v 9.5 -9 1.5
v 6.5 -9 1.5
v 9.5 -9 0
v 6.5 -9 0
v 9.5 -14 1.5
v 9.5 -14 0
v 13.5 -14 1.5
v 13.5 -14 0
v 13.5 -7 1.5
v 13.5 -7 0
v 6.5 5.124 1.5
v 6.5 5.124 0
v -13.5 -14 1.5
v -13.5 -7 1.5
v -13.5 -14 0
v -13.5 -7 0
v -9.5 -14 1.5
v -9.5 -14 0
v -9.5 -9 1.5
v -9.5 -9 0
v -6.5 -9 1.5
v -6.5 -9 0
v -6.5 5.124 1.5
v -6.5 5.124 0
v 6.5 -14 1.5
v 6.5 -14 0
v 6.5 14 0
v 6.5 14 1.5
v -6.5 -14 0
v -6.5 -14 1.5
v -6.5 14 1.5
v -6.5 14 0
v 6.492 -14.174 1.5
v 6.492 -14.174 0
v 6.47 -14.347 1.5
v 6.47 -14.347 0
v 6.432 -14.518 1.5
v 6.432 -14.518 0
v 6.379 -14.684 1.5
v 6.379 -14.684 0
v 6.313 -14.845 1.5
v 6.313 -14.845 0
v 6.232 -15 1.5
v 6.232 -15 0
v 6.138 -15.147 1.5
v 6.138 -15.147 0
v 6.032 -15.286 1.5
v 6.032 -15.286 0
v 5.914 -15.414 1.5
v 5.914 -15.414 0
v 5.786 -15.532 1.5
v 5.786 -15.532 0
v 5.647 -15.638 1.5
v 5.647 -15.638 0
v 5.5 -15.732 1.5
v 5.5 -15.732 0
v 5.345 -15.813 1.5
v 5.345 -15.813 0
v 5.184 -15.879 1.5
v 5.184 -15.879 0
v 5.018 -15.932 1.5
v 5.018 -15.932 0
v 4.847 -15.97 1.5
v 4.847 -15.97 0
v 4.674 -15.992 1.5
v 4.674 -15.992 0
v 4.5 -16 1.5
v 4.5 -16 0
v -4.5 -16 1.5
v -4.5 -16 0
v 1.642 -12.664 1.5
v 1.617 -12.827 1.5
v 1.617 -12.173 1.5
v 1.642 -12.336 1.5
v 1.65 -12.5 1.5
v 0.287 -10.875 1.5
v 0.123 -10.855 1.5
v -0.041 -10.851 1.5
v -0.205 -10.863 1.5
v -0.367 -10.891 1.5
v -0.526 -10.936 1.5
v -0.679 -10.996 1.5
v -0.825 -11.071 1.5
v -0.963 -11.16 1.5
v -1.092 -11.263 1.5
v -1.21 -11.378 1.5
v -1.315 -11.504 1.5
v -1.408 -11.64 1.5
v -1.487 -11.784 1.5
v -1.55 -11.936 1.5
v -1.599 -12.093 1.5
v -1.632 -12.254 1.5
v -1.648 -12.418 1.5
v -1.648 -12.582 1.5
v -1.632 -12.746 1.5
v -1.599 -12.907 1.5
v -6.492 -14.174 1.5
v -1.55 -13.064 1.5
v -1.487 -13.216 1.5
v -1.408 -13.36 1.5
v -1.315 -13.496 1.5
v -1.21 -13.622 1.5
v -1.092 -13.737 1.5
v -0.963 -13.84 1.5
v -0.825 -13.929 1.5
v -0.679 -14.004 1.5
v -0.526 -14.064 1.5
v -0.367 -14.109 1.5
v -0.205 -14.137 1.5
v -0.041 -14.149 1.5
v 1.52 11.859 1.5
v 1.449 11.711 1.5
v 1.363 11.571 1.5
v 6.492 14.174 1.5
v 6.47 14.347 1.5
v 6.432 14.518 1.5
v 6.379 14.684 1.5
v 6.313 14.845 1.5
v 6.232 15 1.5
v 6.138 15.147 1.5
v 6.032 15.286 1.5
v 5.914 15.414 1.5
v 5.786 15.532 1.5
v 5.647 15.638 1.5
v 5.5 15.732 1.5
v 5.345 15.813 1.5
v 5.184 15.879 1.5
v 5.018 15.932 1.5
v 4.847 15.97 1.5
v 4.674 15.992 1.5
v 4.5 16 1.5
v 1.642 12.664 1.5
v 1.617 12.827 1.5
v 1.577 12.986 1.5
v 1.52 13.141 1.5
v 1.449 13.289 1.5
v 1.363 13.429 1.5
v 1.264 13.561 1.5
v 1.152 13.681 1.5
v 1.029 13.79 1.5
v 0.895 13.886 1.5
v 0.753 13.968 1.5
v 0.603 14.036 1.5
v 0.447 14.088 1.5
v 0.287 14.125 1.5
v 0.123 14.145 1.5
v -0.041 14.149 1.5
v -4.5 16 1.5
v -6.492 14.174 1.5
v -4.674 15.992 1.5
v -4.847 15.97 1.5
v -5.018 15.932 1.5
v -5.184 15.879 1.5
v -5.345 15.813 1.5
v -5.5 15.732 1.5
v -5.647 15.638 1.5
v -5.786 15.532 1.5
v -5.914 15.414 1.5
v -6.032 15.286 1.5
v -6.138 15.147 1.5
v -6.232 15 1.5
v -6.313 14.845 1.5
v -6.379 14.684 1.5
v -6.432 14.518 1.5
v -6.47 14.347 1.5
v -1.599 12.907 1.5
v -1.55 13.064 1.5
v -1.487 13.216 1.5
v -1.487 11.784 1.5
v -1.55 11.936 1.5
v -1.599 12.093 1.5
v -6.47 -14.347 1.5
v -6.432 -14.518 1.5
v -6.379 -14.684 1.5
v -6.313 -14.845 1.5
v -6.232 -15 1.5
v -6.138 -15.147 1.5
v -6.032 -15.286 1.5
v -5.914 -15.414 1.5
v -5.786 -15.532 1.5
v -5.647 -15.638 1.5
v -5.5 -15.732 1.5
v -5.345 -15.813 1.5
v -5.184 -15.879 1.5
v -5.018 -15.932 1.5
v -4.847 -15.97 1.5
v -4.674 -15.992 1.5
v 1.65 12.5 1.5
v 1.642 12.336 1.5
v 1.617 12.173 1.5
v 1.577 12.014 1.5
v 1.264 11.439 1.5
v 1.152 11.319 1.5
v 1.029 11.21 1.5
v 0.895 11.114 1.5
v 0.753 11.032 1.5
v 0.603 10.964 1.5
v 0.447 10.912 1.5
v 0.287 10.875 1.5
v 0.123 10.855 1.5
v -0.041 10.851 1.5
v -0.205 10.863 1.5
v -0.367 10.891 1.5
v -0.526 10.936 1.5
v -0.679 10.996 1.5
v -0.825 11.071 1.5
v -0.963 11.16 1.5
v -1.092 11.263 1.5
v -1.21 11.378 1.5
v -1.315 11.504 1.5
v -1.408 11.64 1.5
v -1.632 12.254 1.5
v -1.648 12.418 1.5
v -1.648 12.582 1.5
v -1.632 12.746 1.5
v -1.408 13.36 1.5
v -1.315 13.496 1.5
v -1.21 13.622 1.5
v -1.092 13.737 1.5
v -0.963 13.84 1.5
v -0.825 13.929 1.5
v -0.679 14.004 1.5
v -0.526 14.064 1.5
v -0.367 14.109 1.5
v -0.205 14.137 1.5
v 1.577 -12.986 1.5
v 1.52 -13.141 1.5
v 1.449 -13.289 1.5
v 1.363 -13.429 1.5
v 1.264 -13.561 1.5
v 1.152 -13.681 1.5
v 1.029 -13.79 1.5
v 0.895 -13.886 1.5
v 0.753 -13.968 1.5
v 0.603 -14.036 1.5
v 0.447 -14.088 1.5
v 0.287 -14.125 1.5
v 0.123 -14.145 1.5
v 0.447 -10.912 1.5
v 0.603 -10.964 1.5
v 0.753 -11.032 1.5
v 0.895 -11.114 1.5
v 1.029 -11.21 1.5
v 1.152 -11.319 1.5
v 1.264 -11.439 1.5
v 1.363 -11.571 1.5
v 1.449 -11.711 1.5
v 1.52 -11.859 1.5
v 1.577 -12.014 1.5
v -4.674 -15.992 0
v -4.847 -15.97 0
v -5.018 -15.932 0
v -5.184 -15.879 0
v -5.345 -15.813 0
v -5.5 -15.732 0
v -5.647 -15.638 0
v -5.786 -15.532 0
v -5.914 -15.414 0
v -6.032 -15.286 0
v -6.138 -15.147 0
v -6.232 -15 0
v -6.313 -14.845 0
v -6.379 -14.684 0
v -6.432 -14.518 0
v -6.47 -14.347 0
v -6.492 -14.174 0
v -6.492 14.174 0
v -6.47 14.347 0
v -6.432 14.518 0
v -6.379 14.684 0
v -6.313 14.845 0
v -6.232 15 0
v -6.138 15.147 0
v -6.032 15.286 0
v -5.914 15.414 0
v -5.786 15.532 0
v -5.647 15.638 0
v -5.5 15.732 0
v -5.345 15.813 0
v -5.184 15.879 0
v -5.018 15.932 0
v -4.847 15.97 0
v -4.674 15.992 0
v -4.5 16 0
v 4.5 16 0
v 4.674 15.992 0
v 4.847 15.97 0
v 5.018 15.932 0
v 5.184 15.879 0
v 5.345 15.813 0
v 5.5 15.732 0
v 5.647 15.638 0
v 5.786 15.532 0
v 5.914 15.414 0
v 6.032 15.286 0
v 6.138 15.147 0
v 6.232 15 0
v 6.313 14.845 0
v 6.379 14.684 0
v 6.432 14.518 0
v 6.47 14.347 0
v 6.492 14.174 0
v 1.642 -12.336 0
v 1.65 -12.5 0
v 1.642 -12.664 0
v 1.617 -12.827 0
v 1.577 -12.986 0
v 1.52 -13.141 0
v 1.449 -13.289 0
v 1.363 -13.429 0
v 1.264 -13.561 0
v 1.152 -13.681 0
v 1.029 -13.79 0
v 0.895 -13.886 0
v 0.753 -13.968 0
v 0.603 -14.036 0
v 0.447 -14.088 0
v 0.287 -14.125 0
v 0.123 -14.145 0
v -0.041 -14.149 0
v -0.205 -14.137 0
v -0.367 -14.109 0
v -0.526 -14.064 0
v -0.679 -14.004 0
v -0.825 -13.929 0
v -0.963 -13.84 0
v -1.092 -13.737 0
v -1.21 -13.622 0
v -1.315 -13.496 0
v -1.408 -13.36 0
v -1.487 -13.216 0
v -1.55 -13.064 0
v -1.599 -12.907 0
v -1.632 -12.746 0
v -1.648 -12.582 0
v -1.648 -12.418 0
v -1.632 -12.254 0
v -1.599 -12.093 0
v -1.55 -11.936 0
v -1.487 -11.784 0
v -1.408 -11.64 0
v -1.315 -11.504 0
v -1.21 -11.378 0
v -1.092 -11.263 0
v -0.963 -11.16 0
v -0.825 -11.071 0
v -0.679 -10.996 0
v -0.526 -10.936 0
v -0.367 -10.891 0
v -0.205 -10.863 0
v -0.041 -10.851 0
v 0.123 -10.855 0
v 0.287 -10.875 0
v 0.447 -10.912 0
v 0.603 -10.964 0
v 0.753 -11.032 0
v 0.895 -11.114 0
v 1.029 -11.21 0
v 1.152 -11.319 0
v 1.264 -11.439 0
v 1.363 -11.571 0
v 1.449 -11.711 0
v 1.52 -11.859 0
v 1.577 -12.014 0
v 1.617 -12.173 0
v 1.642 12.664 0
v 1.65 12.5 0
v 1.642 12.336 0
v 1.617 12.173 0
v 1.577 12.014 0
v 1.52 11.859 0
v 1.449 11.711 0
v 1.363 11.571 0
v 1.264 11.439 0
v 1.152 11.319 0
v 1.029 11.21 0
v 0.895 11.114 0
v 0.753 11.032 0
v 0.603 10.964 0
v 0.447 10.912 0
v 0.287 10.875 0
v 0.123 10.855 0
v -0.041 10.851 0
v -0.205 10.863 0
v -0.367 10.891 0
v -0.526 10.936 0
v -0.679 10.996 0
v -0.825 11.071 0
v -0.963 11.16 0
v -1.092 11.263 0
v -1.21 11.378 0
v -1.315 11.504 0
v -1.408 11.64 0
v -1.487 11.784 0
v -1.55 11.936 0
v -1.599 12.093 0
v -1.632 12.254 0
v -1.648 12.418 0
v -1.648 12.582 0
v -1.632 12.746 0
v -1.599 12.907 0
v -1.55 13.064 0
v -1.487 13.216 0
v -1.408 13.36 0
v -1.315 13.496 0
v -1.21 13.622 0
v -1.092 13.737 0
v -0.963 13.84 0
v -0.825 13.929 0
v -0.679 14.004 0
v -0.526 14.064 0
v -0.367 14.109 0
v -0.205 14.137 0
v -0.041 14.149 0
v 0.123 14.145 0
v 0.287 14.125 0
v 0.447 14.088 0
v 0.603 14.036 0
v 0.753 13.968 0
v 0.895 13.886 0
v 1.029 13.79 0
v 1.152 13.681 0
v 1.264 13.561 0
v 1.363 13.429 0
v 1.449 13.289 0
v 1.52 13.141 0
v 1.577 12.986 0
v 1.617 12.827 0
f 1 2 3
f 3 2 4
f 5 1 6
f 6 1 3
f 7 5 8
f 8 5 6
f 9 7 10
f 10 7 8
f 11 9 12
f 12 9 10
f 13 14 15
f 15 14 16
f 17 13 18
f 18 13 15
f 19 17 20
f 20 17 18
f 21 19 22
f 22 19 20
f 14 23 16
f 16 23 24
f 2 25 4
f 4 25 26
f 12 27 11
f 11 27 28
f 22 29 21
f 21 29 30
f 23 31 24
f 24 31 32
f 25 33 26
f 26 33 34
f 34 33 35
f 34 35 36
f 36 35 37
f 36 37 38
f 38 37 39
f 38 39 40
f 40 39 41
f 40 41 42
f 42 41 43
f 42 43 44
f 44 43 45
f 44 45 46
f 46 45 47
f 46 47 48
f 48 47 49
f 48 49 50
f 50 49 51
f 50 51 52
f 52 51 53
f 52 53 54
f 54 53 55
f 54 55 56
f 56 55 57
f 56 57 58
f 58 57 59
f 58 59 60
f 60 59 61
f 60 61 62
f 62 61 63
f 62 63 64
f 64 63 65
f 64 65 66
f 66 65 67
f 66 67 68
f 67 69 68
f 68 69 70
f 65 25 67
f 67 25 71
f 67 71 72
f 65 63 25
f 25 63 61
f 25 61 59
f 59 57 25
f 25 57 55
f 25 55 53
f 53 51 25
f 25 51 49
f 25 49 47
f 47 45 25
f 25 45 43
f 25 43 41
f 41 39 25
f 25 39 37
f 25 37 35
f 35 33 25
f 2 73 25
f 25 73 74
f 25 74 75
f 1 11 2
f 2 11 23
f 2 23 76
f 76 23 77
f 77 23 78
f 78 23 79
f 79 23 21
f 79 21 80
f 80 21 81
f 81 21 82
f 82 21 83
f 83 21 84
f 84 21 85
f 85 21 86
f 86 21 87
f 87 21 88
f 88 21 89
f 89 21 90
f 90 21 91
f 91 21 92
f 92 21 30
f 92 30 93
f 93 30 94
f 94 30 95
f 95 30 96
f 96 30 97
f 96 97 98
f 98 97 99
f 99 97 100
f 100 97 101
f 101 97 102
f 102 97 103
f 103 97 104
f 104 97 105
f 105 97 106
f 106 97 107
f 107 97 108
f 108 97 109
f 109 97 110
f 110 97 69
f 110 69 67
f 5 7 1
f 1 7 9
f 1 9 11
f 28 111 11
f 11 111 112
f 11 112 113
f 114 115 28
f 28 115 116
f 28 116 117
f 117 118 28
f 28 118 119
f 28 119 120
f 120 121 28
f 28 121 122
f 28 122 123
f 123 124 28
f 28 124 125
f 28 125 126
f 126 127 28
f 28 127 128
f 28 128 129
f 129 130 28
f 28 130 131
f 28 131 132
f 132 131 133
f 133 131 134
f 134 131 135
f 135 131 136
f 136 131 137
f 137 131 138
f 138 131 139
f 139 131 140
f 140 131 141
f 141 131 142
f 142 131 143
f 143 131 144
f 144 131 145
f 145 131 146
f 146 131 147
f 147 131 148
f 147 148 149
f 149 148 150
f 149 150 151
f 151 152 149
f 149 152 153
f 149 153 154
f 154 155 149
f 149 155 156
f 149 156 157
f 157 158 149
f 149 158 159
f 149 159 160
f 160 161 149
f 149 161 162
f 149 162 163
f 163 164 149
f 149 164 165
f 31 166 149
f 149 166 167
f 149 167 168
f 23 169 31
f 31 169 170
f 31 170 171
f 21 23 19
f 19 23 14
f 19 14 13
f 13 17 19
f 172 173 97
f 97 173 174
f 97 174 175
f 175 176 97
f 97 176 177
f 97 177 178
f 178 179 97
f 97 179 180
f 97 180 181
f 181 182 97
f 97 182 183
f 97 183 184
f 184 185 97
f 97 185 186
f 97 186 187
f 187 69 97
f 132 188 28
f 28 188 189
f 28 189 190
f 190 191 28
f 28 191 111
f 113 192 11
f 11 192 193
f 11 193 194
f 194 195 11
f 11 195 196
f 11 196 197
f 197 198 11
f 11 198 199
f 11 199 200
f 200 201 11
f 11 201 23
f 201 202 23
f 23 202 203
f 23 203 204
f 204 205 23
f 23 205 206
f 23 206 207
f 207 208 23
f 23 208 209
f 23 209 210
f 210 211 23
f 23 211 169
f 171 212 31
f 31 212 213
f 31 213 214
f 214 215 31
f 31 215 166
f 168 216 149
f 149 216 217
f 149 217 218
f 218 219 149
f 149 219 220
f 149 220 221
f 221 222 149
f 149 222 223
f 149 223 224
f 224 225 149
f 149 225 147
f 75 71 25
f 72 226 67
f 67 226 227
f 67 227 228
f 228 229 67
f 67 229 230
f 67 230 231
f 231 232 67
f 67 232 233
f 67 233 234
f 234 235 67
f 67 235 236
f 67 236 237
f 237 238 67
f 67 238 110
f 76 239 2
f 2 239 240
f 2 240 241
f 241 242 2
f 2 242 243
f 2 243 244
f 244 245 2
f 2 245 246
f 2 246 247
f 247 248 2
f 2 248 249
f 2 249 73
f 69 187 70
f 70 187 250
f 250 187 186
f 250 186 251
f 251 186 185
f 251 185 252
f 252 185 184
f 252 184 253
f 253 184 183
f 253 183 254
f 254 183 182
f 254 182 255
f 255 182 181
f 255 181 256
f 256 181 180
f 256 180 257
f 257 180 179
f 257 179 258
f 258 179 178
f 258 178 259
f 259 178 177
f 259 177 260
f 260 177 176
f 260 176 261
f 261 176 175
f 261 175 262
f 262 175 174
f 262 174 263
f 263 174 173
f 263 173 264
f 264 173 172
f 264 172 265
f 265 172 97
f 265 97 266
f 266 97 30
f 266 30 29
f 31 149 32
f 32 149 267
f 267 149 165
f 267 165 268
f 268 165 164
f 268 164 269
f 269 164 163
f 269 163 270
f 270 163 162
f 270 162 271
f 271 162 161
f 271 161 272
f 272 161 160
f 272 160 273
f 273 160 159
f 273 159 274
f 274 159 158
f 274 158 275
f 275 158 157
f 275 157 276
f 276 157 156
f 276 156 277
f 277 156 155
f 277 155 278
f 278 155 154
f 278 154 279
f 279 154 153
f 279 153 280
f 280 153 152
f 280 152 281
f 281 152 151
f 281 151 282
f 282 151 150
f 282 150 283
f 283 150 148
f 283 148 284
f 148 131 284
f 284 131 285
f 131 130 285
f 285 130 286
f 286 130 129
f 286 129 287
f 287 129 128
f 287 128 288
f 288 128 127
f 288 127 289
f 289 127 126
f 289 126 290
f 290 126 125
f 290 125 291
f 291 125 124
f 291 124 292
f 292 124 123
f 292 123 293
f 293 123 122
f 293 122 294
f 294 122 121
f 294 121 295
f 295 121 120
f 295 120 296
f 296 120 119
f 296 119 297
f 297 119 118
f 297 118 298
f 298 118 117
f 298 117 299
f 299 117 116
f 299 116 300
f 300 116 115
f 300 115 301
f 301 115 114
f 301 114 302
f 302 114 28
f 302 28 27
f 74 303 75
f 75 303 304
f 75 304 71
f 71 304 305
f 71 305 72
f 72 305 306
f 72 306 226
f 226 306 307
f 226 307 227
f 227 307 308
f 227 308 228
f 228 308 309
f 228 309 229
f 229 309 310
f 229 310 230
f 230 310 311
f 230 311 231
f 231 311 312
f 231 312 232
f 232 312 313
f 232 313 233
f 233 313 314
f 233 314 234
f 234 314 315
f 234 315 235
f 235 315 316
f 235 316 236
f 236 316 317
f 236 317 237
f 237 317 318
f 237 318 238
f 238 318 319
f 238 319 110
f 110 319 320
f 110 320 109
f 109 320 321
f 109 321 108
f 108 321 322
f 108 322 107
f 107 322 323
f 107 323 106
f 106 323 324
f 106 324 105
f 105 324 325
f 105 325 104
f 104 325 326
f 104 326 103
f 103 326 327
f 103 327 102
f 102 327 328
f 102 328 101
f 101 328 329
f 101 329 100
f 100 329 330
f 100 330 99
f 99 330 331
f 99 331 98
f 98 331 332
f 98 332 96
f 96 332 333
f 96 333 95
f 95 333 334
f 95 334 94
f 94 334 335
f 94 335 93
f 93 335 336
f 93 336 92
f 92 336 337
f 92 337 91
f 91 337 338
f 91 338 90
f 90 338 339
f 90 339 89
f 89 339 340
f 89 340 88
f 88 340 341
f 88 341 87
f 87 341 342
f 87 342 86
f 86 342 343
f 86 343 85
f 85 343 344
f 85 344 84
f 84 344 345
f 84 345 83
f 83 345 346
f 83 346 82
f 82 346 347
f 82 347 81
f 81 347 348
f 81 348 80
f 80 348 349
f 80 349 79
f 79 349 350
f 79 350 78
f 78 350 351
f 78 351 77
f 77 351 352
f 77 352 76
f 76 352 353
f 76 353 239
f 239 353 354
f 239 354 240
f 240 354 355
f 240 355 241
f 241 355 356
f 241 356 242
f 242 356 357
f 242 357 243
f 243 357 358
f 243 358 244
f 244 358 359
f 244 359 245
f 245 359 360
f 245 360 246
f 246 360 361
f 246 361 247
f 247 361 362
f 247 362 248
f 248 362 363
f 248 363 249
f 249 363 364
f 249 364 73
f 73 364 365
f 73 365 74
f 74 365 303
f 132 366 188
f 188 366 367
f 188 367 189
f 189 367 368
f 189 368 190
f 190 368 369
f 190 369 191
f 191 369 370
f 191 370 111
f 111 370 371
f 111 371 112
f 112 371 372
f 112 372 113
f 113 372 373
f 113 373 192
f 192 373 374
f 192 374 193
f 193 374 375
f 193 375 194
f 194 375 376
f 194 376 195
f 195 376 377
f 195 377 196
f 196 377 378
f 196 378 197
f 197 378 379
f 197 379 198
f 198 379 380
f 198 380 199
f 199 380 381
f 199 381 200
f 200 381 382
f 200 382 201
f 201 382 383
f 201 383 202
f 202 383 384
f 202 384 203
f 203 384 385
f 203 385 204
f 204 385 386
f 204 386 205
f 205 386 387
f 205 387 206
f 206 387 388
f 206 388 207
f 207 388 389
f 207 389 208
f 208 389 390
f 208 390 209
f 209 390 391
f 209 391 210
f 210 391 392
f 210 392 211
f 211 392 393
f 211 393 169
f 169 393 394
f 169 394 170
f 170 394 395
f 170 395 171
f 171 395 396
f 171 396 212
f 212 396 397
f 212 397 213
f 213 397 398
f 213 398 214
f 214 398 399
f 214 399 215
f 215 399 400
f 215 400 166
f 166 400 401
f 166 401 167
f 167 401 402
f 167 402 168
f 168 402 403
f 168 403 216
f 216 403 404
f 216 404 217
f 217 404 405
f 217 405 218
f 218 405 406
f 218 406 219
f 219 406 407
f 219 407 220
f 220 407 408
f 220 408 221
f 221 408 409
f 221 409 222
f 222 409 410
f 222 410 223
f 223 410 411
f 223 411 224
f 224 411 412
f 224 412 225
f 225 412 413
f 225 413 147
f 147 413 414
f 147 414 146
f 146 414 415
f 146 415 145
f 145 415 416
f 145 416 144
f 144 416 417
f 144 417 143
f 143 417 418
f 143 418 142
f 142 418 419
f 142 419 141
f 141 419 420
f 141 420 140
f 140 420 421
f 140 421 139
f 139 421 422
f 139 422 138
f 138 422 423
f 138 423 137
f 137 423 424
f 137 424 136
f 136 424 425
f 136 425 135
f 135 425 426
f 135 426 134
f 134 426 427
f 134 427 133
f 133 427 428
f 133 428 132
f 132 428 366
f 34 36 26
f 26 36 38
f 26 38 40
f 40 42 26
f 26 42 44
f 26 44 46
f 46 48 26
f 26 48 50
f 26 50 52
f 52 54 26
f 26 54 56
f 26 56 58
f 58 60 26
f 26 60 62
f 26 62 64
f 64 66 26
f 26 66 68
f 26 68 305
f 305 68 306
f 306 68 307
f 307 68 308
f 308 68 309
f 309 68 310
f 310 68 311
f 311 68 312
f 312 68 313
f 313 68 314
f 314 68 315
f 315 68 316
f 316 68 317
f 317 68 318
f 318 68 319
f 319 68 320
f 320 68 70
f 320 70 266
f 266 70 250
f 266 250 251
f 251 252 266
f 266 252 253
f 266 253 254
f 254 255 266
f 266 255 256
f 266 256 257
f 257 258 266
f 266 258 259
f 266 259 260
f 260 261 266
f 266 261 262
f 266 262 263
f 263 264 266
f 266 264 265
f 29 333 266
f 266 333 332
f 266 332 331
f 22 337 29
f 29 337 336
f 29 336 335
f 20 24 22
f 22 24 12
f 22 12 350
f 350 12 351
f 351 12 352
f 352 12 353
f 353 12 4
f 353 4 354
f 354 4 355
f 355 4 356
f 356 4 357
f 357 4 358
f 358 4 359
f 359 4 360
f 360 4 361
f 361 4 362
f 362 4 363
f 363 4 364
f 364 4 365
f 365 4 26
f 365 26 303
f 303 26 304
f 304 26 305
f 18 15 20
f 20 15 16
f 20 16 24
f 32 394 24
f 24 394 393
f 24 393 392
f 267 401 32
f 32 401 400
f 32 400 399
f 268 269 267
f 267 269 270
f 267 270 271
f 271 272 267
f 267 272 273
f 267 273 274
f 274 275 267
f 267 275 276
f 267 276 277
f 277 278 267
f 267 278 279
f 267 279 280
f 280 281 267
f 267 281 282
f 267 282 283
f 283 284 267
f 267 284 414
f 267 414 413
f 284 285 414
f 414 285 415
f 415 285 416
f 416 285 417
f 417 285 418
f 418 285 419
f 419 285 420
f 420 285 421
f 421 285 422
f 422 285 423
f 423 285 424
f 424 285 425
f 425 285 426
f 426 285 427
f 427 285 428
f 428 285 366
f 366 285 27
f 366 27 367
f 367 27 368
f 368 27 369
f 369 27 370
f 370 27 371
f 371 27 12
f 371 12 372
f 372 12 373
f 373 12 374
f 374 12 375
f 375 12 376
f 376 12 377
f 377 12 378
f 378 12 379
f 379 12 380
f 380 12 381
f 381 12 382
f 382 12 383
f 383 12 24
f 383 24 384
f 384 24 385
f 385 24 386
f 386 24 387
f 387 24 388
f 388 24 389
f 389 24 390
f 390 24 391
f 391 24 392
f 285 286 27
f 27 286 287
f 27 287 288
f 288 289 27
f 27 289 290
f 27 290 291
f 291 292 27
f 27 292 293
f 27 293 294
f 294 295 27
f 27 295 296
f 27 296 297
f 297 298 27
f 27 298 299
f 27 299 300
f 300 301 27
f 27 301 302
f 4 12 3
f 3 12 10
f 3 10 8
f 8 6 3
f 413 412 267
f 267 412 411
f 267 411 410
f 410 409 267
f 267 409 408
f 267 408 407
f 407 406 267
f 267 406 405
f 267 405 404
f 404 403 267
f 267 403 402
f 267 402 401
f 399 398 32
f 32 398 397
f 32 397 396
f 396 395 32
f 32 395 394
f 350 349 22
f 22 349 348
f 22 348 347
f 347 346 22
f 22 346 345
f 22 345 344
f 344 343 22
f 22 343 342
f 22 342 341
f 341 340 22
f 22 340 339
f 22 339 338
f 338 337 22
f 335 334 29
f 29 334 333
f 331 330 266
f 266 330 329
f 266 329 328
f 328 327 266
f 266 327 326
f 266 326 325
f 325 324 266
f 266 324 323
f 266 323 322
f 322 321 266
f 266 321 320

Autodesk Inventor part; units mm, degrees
ref_plane "YZ Plane" through (0, 0, 0) normal (1, 0, 0) x (0, 1, 0)
ref_plane "XZ Plane" through (0, 0, 0) normal (0, 1, 0) x (-1, 0, 0)
ref_plane "XY Plane" through (0, 0, 0) normal (0, 0, 1) x (1, 0, 0)
sketch "Sketch1" plane through (0, 0, 0) normal (0, 0, 1) x (1, 0, 0)
  line L0 (-6.5, -16) -> (6.5, -16)
  line L1 (6.5, -16) -> (6.5, 16)
  line L2 (6.5, 16) -> (-6.5, 16)
  line L3 (-6.5, 16) -> (-6.5, -16)
  line L4 (-6.5, -16) -> (6.5, 16) construction
  line L5 (6.5, -16) -> (-6.5, 16) construction
  line L6 (0, 0) -> (0, 12.5) construction
  line L7 (0, 0) -> (0, -12.5) construction
  circle A0 centre (0, 12.5) radius 1.65
  circle A1 centre (0, -12.5) radius 1.65
  dimension "d0" = 13
  dimension "d1" = 32
  dimension "d8" = 3.3
  dimension "d9" = 25
extrude "Extrusion1" add sketch "Sketch1" along normal blind 1.5
fillet "Fillet1" radius 2 4 edges at (6.5, 16, 0.75) (-6.5, 16, 0.75) (-6.5, -16, 0.75) (6.5, -16, 0.75)
sketch "Sketch2" plane through (0, 0, 1.5) normal (0, 0, 1) x (1, 0, 0)
  line L0 (6.5, -14) -> (6.5, 14) projected
  line L1 (6.5, -9) -> (9.5, -9)
  line L2 (9.5, -9) -> (9.5, -14)
  line L3 (9.5, -14) -> (6.5, -14) construction
  line L4 (9.5, -14) -> (13.5, -14)
  line L5 (13.5, -14) -> (13.5, -7)
  line L6 (13.5, -7) -> (6.5, 5.1244)
  line L7 (0, 0) -> (0, -8.4482) construction
  line L8 (6.5, 5.1244) -> (6.5, -9)
  line L9 (-6.5, -9) -> (-9.5, -9)
  line L10 (-9.5, -9) -> (-9.5, -14)
  line L11 (-9.5, -14) -> (-6.5, -14) construction
  line L12 (-9.5, -14) -> (-13.5, -14)
  line L13 (-13.5, -14) -> (-13.5, -7)
  line L14 (-13.5, -7) -> (-6.5, 5.1244)
  line L15 (-6.5, 5.1244) -> (-6.5, -9)
  dimension "d10" = 3
  dimension "d11" = 5
  dimension "d12" = 4
  dimension "d13" = 2
  dimension "d14" = 30
extrude "Extrusion2" add sketch "Sketch2" against normal blind 1.5
properties part number "PusherConstraint"
